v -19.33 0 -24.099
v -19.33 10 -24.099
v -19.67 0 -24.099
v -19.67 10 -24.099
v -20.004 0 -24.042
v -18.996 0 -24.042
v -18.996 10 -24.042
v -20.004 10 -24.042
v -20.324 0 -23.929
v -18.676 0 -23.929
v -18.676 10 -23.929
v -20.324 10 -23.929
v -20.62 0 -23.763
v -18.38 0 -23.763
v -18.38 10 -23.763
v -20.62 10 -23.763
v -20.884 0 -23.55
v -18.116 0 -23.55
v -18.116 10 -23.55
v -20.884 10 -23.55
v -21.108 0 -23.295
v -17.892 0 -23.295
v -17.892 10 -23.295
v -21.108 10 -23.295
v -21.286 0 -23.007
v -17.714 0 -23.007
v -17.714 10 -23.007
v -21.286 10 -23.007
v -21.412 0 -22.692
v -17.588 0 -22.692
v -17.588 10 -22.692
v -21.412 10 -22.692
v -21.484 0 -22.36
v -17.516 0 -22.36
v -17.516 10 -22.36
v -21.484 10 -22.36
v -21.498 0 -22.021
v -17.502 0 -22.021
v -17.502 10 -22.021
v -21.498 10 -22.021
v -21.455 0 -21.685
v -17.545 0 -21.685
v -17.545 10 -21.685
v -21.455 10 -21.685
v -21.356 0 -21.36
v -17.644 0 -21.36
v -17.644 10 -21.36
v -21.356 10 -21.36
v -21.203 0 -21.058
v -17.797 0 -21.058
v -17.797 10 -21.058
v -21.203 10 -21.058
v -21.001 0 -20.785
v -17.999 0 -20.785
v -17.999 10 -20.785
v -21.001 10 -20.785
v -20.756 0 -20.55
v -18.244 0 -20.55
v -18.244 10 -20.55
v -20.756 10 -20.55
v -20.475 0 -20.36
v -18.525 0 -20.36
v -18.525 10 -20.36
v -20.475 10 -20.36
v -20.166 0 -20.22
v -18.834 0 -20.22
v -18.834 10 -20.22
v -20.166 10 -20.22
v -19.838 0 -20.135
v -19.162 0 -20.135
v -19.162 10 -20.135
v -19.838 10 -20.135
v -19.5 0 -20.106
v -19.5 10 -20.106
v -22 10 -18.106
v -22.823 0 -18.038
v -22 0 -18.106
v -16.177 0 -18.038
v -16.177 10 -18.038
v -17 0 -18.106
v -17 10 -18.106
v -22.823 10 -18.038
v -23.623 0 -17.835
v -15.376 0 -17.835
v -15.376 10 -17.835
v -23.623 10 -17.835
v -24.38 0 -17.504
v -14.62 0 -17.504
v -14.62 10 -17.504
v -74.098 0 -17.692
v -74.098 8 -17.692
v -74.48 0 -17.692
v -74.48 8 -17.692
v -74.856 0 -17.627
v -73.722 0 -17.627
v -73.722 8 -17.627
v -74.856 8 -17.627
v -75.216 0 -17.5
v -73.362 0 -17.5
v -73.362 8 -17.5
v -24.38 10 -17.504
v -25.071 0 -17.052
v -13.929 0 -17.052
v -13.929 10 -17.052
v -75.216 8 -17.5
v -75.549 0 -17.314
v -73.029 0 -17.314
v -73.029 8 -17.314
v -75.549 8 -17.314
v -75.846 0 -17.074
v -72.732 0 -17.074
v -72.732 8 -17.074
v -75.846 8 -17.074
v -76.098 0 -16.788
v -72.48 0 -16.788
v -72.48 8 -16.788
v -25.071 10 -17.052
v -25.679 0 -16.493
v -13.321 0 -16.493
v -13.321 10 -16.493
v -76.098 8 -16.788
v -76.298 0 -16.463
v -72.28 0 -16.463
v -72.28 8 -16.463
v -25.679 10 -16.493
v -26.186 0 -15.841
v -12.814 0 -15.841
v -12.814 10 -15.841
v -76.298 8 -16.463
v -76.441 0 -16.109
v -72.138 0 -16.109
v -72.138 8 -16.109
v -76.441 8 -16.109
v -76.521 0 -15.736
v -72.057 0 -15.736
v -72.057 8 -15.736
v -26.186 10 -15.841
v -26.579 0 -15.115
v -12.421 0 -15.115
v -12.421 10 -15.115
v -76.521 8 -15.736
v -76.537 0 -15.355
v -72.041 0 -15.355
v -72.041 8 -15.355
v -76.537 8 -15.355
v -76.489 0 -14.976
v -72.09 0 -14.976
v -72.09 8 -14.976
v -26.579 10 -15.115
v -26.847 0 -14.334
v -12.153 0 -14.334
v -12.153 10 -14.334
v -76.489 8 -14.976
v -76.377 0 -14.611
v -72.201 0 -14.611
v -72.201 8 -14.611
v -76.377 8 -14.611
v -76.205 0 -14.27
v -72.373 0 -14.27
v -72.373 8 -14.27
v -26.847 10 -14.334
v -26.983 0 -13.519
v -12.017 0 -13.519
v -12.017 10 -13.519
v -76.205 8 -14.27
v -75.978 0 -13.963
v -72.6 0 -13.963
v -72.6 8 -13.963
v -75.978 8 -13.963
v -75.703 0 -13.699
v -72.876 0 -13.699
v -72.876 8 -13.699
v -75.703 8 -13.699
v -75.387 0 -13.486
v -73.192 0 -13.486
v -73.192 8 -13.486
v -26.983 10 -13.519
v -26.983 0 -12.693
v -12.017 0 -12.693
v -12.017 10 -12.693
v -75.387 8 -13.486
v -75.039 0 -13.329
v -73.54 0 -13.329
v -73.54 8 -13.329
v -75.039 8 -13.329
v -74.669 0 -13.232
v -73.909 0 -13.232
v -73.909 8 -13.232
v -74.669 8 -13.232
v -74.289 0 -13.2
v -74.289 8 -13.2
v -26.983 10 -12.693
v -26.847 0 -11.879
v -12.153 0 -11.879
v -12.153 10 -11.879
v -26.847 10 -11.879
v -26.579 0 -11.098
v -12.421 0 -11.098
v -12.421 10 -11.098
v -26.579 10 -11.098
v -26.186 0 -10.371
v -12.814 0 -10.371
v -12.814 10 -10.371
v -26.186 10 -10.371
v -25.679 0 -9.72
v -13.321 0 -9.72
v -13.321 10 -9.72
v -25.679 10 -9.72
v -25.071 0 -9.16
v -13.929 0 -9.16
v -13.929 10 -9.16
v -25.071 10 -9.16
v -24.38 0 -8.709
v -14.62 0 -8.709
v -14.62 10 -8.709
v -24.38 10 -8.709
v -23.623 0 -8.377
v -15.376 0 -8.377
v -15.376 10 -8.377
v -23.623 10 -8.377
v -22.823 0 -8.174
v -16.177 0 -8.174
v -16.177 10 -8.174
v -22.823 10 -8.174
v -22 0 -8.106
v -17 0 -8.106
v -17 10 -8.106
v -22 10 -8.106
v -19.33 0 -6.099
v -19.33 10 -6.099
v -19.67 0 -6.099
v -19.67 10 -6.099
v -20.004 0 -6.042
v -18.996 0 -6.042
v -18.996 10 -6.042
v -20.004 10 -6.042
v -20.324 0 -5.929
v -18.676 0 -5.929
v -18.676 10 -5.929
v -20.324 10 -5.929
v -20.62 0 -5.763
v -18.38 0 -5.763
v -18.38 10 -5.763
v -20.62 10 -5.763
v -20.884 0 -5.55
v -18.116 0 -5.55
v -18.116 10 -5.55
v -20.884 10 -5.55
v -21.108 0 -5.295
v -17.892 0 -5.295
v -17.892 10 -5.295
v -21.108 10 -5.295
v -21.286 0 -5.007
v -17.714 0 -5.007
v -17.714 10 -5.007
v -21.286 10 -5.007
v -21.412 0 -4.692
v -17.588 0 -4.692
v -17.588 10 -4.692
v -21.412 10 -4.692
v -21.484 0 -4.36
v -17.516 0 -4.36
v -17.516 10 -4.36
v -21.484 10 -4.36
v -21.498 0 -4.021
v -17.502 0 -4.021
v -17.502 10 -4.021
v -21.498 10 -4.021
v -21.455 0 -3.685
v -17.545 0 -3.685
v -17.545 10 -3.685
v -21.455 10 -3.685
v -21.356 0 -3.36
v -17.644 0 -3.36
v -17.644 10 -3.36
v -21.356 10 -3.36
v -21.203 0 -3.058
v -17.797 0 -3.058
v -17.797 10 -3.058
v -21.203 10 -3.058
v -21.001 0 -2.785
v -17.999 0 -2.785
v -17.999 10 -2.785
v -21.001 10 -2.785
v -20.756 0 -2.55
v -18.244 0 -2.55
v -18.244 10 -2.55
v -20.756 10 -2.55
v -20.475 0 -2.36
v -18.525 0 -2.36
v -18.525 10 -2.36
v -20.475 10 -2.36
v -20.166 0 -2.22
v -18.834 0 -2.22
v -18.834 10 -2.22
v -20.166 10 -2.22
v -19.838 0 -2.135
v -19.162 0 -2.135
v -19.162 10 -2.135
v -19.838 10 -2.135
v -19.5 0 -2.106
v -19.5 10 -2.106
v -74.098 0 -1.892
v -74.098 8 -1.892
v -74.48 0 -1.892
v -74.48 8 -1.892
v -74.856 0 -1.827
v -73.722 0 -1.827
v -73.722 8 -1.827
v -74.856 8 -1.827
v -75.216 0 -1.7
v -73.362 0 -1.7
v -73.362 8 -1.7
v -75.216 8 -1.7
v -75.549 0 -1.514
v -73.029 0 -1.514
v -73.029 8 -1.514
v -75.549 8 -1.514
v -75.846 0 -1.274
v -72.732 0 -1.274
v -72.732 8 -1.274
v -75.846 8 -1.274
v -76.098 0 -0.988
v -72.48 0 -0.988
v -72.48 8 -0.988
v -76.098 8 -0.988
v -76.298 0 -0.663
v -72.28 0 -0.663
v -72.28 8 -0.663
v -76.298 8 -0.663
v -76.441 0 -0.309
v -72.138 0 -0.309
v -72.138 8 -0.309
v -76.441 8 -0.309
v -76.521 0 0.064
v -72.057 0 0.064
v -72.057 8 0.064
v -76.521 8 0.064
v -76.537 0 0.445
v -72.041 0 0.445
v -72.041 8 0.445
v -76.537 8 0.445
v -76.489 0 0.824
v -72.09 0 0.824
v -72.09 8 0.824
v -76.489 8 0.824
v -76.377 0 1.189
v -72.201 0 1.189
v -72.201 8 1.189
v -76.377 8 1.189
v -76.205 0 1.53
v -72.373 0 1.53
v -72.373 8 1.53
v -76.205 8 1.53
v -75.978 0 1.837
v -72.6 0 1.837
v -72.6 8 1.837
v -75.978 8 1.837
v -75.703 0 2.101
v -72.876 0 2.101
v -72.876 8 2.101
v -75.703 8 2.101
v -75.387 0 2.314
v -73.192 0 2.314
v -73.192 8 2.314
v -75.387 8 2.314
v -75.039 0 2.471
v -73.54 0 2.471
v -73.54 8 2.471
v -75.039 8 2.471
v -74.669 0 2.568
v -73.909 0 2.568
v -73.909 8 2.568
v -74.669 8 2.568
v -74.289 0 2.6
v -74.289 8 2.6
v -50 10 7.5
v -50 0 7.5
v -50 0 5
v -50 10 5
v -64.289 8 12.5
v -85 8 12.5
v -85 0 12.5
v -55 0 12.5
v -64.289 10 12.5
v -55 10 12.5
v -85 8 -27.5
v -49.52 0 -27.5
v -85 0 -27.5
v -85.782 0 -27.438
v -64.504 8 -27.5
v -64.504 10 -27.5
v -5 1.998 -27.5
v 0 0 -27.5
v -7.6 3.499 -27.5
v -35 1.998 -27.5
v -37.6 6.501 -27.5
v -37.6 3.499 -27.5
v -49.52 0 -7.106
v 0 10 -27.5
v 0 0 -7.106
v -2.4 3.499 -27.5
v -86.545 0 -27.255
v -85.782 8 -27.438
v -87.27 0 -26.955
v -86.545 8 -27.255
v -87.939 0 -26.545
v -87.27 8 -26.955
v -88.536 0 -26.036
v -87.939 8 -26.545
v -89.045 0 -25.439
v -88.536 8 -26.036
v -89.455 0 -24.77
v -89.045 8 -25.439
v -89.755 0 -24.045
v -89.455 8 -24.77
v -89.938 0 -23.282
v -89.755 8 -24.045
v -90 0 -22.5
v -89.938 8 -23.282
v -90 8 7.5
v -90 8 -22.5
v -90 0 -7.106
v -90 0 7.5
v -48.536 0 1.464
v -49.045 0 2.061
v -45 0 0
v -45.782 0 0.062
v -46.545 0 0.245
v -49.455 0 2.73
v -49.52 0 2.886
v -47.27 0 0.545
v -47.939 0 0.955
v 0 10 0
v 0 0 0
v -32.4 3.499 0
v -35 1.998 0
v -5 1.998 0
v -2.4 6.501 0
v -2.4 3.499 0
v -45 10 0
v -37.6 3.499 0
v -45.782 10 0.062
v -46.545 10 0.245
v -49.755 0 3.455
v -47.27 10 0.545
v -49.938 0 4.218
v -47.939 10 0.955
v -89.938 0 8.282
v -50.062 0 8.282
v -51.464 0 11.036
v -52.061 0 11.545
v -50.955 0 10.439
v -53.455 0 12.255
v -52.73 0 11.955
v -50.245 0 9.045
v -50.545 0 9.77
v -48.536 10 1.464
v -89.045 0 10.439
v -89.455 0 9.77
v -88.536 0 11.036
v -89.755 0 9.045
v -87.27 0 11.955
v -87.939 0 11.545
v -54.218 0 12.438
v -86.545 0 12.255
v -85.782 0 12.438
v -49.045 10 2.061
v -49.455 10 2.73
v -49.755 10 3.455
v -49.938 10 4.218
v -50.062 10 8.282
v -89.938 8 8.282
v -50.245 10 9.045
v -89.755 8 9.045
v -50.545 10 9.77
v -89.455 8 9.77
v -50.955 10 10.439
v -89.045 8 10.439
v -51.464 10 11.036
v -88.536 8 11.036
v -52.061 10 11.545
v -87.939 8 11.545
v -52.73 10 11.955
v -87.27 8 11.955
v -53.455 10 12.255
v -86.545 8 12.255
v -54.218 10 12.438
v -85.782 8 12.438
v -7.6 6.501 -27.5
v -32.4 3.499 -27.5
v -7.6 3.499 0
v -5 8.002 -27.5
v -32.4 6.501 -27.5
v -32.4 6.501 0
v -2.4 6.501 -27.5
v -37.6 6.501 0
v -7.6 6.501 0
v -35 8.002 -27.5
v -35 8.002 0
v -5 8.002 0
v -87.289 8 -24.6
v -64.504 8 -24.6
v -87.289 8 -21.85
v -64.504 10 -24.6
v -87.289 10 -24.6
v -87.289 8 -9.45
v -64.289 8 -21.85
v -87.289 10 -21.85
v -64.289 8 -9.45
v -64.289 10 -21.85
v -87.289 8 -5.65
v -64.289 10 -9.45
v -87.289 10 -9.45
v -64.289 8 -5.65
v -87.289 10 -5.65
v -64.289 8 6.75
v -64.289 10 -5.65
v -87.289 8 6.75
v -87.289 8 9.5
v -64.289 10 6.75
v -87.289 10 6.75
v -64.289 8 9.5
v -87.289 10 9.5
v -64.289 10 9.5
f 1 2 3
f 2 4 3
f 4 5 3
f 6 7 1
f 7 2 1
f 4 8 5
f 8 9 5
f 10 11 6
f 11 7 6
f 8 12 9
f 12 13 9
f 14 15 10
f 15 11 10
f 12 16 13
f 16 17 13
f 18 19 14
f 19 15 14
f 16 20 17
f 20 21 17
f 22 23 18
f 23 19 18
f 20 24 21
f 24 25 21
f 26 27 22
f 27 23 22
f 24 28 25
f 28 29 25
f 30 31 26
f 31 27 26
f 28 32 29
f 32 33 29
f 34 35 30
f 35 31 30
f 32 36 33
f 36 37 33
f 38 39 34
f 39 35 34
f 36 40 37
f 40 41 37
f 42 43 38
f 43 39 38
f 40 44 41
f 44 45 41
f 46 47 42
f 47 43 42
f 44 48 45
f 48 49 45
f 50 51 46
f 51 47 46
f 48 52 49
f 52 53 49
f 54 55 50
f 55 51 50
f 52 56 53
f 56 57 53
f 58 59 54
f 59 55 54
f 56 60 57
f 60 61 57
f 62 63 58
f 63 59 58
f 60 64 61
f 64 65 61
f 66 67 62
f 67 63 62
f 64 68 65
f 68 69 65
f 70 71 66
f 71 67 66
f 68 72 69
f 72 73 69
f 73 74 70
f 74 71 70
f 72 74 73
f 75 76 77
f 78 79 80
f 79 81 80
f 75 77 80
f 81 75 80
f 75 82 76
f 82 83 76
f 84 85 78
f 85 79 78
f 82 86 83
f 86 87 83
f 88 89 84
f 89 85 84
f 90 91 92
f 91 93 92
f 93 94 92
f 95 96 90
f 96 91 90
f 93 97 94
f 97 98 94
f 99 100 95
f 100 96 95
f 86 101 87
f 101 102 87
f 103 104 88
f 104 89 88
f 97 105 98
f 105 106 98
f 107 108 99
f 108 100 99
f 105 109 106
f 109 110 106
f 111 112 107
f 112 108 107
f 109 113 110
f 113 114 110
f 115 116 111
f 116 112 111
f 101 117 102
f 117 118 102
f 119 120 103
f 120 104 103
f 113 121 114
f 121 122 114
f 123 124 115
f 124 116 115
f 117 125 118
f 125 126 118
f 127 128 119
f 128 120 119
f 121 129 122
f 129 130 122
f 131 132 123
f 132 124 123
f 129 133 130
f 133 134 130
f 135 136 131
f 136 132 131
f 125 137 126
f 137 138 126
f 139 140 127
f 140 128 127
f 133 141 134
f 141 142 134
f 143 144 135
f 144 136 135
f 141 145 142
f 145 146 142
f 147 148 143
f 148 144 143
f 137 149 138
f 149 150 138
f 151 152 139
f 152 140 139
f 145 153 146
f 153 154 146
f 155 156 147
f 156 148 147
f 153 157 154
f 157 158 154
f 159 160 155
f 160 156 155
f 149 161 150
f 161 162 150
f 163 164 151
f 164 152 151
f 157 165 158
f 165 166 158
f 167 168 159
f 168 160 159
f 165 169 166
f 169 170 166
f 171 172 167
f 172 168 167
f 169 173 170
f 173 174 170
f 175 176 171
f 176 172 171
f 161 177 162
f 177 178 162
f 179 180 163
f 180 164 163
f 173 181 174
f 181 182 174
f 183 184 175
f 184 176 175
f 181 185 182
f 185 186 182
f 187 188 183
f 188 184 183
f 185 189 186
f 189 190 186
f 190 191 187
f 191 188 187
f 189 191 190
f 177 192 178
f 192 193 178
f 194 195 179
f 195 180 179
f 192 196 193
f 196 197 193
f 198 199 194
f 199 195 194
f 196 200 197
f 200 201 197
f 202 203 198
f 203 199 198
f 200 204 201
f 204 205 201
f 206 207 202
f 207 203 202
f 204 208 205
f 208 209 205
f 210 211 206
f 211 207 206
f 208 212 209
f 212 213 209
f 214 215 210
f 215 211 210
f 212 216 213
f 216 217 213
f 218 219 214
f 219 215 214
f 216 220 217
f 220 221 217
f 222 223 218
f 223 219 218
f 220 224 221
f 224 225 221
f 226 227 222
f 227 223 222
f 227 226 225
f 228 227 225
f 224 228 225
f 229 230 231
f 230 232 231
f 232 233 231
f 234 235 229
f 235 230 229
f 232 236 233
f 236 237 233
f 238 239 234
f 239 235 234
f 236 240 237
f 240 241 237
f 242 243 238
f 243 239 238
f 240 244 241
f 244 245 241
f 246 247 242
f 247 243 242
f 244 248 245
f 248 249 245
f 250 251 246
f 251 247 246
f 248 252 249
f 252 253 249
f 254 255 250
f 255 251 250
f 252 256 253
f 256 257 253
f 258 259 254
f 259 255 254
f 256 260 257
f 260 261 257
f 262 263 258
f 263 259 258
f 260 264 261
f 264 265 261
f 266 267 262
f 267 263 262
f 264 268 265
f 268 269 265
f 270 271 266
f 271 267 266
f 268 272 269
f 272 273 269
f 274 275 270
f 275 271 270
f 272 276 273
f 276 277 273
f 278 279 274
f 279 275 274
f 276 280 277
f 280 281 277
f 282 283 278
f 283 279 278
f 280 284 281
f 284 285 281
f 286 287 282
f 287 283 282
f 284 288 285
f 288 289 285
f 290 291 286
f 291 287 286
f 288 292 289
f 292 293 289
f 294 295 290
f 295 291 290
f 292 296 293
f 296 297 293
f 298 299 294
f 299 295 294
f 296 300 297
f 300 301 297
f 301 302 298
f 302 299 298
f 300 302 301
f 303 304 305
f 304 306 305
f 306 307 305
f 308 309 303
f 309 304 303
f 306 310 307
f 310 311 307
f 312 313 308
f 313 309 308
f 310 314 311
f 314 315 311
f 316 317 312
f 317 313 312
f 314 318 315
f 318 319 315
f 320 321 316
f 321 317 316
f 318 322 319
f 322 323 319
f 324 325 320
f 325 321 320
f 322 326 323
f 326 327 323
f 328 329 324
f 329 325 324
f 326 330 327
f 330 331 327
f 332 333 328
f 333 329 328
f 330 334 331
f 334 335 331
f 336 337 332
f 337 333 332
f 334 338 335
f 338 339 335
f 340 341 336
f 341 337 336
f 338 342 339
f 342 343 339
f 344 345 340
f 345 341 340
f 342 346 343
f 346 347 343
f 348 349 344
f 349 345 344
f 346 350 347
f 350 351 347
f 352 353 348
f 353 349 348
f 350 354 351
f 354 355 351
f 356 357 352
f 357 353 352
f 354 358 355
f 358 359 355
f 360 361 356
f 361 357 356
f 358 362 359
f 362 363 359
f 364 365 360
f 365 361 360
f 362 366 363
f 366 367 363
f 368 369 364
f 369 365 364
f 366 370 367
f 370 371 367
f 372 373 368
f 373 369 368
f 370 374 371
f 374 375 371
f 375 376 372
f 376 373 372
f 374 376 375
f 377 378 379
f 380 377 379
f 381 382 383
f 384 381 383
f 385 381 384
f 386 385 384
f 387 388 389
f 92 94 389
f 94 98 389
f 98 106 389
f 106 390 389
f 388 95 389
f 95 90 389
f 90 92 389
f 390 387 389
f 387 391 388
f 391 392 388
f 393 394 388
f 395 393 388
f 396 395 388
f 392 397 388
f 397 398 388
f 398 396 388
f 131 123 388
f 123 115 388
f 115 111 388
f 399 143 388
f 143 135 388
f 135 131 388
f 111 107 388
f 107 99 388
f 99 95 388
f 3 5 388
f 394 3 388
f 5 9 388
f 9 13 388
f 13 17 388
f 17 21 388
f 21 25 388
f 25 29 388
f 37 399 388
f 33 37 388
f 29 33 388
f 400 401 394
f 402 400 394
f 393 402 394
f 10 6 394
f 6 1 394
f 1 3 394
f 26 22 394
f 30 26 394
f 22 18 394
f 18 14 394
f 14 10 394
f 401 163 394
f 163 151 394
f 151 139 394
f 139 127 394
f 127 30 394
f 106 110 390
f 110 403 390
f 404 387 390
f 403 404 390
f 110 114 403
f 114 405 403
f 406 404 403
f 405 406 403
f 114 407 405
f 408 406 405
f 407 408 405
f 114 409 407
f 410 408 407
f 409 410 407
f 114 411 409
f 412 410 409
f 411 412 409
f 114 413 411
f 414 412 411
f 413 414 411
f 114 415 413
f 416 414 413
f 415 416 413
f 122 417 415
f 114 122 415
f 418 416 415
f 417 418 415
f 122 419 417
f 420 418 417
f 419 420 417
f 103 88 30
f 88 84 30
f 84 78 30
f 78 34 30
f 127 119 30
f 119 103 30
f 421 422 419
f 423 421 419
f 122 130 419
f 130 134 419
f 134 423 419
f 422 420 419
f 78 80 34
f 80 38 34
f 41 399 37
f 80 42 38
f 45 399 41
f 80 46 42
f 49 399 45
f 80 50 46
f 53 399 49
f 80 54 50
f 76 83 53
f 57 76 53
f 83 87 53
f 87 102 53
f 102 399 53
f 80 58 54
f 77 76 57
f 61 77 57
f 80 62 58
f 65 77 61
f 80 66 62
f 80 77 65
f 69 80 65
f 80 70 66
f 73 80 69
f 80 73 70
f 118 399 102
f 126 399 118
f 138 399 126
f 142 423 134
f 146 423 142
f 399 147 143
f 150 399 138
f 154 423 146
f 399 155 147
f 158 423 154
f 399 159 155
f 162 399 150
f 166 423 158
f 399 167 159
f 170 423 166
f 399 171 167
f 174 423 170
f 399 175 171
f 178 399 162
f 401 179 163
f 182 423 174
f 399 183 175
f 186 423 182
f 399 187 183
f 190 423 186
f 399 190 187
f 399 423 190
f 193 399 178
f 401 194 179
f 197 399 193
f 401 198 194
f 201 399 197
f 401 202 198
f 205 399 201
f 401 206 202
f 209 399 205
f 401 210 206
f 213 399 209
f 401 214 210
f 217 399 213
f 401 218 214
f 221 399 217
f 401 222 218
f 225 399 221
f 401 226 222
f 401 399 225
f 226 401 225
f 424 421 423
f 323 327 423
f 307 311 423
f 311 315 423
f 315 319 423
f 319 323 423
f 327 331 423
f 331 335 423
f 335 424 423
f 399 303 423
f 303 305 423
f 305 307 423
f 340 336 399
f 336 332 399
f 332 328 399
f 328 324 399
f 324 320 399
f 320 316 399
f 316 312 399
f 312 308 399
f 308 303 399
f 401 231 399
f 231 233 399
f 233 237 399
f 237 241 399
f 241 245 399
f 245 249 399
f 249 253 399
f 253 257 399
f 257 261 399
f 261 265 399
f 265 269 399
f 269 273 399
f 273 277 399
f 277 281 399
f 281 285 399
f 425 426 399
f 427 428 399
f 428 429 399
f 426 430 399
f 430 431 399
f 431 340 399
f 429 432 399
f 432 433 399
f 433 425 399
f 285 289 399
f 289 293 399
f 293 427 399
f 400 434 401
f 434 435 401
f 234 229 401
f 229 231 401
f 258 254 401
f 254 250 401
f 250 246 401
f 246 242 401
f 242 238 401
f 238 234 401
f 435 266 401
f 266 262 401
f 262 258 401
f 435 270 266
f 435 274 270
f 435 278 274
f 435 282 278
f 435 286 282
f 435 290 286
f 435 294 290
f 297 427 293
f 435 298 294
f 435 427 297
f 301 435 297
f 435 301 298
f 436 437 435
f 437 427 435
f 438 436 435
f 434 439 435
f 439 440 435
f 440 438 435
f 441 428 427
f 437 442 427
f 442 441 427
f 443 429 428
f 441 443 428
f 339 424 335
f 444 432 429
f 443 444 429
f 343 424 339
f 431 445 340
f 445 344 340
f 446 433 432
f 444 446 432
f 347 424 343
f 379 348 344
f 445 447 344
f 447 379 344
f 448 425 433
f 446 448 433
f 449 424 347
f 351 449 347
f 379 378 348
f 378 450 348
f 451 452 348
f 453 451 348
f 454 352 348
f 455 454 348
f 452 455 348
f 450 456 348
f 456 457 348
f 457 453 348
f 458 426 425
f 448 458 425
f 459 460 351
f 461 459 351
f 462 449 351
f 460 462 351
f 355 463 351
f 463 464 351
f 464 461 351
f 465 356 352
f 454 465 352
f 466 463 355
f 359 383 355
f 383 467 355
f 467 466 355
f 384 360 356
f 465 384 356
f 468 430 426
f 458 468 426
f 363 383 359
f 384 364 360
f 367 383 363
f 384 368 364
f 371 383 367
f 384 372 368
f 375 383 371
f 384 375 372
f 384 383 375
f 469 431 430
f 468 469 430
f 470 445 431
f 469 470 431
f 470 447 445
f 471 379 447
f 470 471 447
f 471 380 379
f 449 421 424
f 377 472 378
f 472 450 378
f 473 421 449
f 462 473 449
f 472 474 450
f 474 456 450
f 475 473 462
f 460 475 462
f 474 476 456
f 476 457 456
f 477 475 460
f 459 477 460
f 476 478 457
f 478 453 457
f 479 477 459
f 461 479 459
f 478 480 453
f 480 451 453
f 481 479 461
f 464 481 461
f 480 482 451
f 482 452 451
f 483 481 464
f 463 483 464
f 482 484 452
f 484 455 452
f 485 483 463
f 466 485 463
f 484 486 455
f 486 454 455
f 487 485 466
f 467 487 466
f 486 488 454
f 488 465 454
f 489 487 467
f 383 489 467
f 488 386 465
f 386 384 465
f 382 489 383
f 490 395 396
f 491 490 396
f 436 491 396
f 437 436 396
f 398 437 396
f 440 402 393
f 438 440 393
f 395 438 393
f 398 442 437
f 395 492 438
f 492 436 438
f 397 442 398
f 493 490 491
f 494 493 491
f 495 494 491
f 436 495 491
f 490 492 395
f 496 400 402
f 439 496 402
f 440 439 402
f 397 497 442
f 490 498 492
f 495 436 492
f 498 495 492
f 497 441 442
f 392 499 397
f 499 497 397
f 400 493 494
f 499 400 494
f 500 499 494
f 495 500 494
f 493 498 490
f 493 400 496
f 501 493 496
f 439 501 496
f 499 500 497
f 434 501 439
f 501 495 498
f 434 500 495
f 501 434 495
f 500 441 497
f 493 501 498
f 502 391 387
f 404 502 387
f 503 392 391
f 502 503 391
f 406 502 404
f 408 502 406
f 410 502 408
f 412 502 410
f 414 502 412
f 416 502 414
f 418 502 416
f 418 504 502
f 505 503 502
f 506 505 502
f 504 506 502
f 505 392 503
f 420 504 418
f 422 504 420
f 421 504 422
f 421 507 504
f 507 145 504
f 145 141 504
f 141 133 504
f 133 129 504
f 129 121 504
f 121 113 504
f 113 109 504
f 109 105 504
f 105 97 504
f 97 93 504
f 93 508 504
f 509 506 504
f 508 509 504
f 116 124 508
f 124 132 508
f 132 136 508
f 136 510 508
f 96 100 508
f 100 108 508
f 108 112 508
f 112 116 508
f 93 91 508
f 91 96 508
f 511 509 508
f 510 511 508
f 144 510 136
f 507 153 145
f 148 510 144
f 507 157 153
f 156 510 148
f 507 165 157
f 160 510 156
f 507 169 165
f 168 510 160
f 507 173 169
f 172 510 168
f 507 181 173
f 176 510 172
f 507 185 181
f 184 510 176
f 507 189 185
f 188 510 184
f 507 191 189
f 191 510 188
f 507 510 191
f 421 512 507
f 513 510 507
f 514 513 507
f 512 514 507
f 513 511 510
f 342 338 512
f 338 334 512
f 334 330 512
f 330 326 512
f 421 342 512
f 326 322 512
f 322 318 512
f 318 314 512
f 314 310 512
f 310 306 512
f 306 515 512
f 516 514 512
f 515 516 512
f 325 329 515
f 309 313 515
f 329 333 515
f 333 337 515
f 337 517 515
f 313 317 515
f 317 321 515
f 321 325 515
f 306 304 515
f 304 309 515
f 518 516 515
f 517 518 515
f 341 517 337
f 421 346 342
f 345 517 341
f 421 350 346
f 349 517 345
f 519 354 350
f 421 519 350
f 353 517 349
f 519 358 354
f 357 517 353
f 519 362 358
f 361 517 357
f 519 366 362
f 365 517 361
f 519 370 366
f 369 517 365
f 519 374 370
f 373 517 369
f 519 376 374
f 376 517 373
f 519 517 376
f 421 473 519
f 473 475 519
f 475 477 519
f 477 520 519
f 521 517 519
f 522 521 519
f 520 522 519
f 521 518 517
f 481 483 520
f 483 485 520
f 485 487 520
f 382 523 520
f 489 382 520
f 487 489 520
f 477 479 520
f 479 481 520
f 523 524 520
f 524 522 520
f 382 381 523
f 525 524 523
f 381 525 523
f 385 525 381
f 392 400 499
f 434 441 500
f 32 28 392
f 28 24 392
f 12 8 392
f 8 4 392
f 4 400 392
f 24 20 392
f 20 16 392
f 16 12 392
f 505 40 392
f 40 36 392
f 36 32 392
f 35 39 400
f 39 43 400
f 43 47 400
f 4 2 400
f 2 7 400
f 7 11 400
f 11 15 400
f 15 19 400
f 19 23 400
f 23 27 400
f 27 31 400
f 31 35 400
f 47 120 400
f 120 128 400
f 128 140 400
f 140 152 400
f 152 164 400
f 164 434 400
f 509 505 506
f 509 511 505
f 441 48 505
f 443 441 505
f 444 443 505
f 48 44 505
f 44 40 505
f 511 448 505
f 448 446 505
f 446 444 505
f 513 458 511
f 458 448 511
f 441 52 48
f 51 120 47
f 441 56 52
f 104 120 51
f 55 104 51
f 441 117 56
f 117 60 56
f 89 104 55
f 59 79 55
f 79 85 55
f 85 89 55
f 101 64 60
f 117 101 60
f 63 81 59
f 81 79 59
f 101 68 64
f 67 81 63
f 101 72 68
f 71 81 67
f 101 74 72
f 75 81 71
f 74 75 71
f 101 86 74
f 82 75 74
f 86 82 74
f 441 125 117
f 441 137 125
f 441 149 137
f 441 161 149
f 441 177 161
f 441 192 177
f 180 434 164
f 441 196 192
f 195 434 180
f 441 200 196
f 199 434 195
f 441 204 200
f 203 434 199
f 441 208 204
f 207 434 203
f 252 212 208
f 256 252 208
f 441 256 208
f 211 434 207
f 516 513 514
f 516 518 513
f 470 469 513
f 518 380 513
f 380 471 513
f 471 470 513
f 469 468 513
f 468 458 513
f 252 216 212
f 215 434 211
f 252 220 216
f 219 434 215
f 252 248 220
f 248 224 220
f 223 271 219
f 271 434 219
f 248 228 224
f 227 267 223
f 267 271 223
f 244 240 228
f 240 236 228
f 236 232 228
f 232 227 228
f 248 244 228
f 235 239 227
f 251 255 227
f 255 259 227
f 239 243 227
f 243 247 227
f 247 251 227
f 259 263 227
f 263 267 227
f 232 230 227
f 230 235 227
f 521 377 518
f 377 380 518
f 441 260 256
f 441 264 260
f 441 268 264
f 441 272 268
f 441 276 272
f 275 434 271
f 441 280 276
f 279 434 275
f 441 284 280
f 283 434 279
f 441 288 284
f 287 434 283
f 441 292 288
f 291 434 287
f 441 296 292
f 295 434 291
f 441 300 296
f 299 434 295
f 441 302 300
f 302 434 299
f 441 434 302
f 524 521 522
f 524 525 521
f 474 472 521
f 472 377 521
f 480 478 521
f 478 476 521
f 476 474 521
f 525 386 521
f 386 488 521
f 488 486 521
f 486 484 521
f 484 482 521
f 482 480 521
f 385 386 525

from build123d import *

# Parameters (mm, degrees)
SKETCH1_W            = 90
SKETCH1_H            = 27.5
BOSS_EXTRUDE1_DEPTH  = 10
CUT_EXTRUDE1_DEPTH   = 28.5
SKETCH9_W            = 40
SKETCH9_H            = 40
BOSS_EXTRUDE3_DEPTH  = 10
CUT_EXTRUDE2_DEPTH   = 2
M4_CLEARANCE_HOLE1_D = 4.5
FILLET1_R            = 5
SKETCH10_R           = 2
CUT_EXTRUDE3_DEPTH   = 11


with BuildPart() as part:
    # Sketch1 → Boss-Extrude1 (new body)
    with BuildSketch(Plane(origin=(0, 0, 0), x_dir=(1, 0, 0), z_dir=(0, 1, 0))):
        with Locations((-45, 13.75)):
            Rectangle(SKETCH1_W, SKETCH1_H)
    extrude(amount=BOSS_EXTRUDE1_DEPTH)

    # Sketch2 → Cut-Extrude1 (cut, through all)
    with BuildSketch(Plane.XY):
        Polygon((-32.4, 3.4988893), (-32.4, 6.5011107), (-35, 8.0022214), (-37.6, 6.5011107), (-37.6, 3.4988893), (-35, 1.9977786), align=None)
        Polygon((-2.4, 3.4988893), (-2.4, 6.5011107), (-5, 8.0022214), (-7.6, 6.5011107), (-7.6, 3.4988893), (-5, 1.9977786), align=None)
    extrude(amount=-CUT_EXTRUDE1_DEPTH, mode=Mode.SUBTRACT)

    # Sketch9 → Boss-Extrude3 (add)
    with BuildSketch(Plane(origin=(0, 10, 0), x_dir=(1, 0, 0), z_dir=(0, 1, 0))):
        with Locations((-70, 7.5)):
            Rectangle(SKETCH9_W, SKETCH9_H)
    extrude(amount=-BOSS_EXTRUDE3_DEPTH)

    # Sketch4 → Cut-Extrude2 (cut)
    with BuildSketch(Plane(origin=(-50, 10, 0), x_dir=(0, 0, -1), z_dir=(0, 1, 0))):
        Polygon((27.6, 44.841124336), (27.6, 37.258569022), (27.6, 14.504295037), (24.6, 14.504295037), (24.6, 37.289189868), (21.85, 37.289189868), (21.85, 30.489189868), (21.85, 14.289189868), (9.45, 14.289189868), (9.45, 30.489189868), (9.45, 37.289189868), (5.65, 37.289189868), (5.65, 30.489189868), (5.65, 14.289189868), (-6.75, 14.289189868), (-6.75, 30.489189868), (-6.75, 37.289189868), (-9.5, 37.289189868), (-9.5, 14.289189868), (-12.5, 14.289189868), (-12.5, 37.289189868), (-12.5, 44.841124336), align=None)
    extrude(amount=-CUT_EXTRUDE2_DEPTH, mode=Mode.SUBTRACT)

    # M4 Clearance Hole1 (through all)
    with Locations(Plane(origin=(0, 8, 0), x_dir=(0, 0, -1), z_dir=(0, 1, 0))):
        with Locations((-0.35, 74.289189868), (15.45, 74.289189868)):
            Hole(M4_CLEARANCE_HOLE1_D / 2)

    # Fillet1
    fillet1_edges = [part.edges().sort_by_distance(p)[0] for p in [
        (-90, 4, 12.5),
        (-50, 5, 0),
        (-50, 5, 12.5),
        (-90, 4, -27.5),
    ]]
    fillet(fillet1_edges, radius=FILLET1_R)

    # Sketch10 → Cut-Extrude3 (cut, through all)
    with BuildSketch(Plane(origin=(0, 10, 0), x_dir=(1, 0, 0), z_dir=(0, 1, 0))):
        with Locations((-19.5, 4.106184291)):
            Circle(SKETCH10_R)
        with Locations((-19.5, 22.106184291)):
            Circle(SKETCH10_R)
        with BuildLine():
            Line((-17, 8.106184291), (-22, 8.106184291))
            ThreePointArc((-22, 8.106184291), (-27, 13.106184291), (-22, 18.106184291))
            Line((-22, 18.106184291), (-17, 18.106184291))
            ThreePointArc((-17, 18.106184291), (-12, 13.106184291), (-17, 8.106184291))
        make_face()
    extrude(amount=-CUT_EXTRUDE3_DEPTH, mode=Mode.SUBTRACT)


solid = part.part
